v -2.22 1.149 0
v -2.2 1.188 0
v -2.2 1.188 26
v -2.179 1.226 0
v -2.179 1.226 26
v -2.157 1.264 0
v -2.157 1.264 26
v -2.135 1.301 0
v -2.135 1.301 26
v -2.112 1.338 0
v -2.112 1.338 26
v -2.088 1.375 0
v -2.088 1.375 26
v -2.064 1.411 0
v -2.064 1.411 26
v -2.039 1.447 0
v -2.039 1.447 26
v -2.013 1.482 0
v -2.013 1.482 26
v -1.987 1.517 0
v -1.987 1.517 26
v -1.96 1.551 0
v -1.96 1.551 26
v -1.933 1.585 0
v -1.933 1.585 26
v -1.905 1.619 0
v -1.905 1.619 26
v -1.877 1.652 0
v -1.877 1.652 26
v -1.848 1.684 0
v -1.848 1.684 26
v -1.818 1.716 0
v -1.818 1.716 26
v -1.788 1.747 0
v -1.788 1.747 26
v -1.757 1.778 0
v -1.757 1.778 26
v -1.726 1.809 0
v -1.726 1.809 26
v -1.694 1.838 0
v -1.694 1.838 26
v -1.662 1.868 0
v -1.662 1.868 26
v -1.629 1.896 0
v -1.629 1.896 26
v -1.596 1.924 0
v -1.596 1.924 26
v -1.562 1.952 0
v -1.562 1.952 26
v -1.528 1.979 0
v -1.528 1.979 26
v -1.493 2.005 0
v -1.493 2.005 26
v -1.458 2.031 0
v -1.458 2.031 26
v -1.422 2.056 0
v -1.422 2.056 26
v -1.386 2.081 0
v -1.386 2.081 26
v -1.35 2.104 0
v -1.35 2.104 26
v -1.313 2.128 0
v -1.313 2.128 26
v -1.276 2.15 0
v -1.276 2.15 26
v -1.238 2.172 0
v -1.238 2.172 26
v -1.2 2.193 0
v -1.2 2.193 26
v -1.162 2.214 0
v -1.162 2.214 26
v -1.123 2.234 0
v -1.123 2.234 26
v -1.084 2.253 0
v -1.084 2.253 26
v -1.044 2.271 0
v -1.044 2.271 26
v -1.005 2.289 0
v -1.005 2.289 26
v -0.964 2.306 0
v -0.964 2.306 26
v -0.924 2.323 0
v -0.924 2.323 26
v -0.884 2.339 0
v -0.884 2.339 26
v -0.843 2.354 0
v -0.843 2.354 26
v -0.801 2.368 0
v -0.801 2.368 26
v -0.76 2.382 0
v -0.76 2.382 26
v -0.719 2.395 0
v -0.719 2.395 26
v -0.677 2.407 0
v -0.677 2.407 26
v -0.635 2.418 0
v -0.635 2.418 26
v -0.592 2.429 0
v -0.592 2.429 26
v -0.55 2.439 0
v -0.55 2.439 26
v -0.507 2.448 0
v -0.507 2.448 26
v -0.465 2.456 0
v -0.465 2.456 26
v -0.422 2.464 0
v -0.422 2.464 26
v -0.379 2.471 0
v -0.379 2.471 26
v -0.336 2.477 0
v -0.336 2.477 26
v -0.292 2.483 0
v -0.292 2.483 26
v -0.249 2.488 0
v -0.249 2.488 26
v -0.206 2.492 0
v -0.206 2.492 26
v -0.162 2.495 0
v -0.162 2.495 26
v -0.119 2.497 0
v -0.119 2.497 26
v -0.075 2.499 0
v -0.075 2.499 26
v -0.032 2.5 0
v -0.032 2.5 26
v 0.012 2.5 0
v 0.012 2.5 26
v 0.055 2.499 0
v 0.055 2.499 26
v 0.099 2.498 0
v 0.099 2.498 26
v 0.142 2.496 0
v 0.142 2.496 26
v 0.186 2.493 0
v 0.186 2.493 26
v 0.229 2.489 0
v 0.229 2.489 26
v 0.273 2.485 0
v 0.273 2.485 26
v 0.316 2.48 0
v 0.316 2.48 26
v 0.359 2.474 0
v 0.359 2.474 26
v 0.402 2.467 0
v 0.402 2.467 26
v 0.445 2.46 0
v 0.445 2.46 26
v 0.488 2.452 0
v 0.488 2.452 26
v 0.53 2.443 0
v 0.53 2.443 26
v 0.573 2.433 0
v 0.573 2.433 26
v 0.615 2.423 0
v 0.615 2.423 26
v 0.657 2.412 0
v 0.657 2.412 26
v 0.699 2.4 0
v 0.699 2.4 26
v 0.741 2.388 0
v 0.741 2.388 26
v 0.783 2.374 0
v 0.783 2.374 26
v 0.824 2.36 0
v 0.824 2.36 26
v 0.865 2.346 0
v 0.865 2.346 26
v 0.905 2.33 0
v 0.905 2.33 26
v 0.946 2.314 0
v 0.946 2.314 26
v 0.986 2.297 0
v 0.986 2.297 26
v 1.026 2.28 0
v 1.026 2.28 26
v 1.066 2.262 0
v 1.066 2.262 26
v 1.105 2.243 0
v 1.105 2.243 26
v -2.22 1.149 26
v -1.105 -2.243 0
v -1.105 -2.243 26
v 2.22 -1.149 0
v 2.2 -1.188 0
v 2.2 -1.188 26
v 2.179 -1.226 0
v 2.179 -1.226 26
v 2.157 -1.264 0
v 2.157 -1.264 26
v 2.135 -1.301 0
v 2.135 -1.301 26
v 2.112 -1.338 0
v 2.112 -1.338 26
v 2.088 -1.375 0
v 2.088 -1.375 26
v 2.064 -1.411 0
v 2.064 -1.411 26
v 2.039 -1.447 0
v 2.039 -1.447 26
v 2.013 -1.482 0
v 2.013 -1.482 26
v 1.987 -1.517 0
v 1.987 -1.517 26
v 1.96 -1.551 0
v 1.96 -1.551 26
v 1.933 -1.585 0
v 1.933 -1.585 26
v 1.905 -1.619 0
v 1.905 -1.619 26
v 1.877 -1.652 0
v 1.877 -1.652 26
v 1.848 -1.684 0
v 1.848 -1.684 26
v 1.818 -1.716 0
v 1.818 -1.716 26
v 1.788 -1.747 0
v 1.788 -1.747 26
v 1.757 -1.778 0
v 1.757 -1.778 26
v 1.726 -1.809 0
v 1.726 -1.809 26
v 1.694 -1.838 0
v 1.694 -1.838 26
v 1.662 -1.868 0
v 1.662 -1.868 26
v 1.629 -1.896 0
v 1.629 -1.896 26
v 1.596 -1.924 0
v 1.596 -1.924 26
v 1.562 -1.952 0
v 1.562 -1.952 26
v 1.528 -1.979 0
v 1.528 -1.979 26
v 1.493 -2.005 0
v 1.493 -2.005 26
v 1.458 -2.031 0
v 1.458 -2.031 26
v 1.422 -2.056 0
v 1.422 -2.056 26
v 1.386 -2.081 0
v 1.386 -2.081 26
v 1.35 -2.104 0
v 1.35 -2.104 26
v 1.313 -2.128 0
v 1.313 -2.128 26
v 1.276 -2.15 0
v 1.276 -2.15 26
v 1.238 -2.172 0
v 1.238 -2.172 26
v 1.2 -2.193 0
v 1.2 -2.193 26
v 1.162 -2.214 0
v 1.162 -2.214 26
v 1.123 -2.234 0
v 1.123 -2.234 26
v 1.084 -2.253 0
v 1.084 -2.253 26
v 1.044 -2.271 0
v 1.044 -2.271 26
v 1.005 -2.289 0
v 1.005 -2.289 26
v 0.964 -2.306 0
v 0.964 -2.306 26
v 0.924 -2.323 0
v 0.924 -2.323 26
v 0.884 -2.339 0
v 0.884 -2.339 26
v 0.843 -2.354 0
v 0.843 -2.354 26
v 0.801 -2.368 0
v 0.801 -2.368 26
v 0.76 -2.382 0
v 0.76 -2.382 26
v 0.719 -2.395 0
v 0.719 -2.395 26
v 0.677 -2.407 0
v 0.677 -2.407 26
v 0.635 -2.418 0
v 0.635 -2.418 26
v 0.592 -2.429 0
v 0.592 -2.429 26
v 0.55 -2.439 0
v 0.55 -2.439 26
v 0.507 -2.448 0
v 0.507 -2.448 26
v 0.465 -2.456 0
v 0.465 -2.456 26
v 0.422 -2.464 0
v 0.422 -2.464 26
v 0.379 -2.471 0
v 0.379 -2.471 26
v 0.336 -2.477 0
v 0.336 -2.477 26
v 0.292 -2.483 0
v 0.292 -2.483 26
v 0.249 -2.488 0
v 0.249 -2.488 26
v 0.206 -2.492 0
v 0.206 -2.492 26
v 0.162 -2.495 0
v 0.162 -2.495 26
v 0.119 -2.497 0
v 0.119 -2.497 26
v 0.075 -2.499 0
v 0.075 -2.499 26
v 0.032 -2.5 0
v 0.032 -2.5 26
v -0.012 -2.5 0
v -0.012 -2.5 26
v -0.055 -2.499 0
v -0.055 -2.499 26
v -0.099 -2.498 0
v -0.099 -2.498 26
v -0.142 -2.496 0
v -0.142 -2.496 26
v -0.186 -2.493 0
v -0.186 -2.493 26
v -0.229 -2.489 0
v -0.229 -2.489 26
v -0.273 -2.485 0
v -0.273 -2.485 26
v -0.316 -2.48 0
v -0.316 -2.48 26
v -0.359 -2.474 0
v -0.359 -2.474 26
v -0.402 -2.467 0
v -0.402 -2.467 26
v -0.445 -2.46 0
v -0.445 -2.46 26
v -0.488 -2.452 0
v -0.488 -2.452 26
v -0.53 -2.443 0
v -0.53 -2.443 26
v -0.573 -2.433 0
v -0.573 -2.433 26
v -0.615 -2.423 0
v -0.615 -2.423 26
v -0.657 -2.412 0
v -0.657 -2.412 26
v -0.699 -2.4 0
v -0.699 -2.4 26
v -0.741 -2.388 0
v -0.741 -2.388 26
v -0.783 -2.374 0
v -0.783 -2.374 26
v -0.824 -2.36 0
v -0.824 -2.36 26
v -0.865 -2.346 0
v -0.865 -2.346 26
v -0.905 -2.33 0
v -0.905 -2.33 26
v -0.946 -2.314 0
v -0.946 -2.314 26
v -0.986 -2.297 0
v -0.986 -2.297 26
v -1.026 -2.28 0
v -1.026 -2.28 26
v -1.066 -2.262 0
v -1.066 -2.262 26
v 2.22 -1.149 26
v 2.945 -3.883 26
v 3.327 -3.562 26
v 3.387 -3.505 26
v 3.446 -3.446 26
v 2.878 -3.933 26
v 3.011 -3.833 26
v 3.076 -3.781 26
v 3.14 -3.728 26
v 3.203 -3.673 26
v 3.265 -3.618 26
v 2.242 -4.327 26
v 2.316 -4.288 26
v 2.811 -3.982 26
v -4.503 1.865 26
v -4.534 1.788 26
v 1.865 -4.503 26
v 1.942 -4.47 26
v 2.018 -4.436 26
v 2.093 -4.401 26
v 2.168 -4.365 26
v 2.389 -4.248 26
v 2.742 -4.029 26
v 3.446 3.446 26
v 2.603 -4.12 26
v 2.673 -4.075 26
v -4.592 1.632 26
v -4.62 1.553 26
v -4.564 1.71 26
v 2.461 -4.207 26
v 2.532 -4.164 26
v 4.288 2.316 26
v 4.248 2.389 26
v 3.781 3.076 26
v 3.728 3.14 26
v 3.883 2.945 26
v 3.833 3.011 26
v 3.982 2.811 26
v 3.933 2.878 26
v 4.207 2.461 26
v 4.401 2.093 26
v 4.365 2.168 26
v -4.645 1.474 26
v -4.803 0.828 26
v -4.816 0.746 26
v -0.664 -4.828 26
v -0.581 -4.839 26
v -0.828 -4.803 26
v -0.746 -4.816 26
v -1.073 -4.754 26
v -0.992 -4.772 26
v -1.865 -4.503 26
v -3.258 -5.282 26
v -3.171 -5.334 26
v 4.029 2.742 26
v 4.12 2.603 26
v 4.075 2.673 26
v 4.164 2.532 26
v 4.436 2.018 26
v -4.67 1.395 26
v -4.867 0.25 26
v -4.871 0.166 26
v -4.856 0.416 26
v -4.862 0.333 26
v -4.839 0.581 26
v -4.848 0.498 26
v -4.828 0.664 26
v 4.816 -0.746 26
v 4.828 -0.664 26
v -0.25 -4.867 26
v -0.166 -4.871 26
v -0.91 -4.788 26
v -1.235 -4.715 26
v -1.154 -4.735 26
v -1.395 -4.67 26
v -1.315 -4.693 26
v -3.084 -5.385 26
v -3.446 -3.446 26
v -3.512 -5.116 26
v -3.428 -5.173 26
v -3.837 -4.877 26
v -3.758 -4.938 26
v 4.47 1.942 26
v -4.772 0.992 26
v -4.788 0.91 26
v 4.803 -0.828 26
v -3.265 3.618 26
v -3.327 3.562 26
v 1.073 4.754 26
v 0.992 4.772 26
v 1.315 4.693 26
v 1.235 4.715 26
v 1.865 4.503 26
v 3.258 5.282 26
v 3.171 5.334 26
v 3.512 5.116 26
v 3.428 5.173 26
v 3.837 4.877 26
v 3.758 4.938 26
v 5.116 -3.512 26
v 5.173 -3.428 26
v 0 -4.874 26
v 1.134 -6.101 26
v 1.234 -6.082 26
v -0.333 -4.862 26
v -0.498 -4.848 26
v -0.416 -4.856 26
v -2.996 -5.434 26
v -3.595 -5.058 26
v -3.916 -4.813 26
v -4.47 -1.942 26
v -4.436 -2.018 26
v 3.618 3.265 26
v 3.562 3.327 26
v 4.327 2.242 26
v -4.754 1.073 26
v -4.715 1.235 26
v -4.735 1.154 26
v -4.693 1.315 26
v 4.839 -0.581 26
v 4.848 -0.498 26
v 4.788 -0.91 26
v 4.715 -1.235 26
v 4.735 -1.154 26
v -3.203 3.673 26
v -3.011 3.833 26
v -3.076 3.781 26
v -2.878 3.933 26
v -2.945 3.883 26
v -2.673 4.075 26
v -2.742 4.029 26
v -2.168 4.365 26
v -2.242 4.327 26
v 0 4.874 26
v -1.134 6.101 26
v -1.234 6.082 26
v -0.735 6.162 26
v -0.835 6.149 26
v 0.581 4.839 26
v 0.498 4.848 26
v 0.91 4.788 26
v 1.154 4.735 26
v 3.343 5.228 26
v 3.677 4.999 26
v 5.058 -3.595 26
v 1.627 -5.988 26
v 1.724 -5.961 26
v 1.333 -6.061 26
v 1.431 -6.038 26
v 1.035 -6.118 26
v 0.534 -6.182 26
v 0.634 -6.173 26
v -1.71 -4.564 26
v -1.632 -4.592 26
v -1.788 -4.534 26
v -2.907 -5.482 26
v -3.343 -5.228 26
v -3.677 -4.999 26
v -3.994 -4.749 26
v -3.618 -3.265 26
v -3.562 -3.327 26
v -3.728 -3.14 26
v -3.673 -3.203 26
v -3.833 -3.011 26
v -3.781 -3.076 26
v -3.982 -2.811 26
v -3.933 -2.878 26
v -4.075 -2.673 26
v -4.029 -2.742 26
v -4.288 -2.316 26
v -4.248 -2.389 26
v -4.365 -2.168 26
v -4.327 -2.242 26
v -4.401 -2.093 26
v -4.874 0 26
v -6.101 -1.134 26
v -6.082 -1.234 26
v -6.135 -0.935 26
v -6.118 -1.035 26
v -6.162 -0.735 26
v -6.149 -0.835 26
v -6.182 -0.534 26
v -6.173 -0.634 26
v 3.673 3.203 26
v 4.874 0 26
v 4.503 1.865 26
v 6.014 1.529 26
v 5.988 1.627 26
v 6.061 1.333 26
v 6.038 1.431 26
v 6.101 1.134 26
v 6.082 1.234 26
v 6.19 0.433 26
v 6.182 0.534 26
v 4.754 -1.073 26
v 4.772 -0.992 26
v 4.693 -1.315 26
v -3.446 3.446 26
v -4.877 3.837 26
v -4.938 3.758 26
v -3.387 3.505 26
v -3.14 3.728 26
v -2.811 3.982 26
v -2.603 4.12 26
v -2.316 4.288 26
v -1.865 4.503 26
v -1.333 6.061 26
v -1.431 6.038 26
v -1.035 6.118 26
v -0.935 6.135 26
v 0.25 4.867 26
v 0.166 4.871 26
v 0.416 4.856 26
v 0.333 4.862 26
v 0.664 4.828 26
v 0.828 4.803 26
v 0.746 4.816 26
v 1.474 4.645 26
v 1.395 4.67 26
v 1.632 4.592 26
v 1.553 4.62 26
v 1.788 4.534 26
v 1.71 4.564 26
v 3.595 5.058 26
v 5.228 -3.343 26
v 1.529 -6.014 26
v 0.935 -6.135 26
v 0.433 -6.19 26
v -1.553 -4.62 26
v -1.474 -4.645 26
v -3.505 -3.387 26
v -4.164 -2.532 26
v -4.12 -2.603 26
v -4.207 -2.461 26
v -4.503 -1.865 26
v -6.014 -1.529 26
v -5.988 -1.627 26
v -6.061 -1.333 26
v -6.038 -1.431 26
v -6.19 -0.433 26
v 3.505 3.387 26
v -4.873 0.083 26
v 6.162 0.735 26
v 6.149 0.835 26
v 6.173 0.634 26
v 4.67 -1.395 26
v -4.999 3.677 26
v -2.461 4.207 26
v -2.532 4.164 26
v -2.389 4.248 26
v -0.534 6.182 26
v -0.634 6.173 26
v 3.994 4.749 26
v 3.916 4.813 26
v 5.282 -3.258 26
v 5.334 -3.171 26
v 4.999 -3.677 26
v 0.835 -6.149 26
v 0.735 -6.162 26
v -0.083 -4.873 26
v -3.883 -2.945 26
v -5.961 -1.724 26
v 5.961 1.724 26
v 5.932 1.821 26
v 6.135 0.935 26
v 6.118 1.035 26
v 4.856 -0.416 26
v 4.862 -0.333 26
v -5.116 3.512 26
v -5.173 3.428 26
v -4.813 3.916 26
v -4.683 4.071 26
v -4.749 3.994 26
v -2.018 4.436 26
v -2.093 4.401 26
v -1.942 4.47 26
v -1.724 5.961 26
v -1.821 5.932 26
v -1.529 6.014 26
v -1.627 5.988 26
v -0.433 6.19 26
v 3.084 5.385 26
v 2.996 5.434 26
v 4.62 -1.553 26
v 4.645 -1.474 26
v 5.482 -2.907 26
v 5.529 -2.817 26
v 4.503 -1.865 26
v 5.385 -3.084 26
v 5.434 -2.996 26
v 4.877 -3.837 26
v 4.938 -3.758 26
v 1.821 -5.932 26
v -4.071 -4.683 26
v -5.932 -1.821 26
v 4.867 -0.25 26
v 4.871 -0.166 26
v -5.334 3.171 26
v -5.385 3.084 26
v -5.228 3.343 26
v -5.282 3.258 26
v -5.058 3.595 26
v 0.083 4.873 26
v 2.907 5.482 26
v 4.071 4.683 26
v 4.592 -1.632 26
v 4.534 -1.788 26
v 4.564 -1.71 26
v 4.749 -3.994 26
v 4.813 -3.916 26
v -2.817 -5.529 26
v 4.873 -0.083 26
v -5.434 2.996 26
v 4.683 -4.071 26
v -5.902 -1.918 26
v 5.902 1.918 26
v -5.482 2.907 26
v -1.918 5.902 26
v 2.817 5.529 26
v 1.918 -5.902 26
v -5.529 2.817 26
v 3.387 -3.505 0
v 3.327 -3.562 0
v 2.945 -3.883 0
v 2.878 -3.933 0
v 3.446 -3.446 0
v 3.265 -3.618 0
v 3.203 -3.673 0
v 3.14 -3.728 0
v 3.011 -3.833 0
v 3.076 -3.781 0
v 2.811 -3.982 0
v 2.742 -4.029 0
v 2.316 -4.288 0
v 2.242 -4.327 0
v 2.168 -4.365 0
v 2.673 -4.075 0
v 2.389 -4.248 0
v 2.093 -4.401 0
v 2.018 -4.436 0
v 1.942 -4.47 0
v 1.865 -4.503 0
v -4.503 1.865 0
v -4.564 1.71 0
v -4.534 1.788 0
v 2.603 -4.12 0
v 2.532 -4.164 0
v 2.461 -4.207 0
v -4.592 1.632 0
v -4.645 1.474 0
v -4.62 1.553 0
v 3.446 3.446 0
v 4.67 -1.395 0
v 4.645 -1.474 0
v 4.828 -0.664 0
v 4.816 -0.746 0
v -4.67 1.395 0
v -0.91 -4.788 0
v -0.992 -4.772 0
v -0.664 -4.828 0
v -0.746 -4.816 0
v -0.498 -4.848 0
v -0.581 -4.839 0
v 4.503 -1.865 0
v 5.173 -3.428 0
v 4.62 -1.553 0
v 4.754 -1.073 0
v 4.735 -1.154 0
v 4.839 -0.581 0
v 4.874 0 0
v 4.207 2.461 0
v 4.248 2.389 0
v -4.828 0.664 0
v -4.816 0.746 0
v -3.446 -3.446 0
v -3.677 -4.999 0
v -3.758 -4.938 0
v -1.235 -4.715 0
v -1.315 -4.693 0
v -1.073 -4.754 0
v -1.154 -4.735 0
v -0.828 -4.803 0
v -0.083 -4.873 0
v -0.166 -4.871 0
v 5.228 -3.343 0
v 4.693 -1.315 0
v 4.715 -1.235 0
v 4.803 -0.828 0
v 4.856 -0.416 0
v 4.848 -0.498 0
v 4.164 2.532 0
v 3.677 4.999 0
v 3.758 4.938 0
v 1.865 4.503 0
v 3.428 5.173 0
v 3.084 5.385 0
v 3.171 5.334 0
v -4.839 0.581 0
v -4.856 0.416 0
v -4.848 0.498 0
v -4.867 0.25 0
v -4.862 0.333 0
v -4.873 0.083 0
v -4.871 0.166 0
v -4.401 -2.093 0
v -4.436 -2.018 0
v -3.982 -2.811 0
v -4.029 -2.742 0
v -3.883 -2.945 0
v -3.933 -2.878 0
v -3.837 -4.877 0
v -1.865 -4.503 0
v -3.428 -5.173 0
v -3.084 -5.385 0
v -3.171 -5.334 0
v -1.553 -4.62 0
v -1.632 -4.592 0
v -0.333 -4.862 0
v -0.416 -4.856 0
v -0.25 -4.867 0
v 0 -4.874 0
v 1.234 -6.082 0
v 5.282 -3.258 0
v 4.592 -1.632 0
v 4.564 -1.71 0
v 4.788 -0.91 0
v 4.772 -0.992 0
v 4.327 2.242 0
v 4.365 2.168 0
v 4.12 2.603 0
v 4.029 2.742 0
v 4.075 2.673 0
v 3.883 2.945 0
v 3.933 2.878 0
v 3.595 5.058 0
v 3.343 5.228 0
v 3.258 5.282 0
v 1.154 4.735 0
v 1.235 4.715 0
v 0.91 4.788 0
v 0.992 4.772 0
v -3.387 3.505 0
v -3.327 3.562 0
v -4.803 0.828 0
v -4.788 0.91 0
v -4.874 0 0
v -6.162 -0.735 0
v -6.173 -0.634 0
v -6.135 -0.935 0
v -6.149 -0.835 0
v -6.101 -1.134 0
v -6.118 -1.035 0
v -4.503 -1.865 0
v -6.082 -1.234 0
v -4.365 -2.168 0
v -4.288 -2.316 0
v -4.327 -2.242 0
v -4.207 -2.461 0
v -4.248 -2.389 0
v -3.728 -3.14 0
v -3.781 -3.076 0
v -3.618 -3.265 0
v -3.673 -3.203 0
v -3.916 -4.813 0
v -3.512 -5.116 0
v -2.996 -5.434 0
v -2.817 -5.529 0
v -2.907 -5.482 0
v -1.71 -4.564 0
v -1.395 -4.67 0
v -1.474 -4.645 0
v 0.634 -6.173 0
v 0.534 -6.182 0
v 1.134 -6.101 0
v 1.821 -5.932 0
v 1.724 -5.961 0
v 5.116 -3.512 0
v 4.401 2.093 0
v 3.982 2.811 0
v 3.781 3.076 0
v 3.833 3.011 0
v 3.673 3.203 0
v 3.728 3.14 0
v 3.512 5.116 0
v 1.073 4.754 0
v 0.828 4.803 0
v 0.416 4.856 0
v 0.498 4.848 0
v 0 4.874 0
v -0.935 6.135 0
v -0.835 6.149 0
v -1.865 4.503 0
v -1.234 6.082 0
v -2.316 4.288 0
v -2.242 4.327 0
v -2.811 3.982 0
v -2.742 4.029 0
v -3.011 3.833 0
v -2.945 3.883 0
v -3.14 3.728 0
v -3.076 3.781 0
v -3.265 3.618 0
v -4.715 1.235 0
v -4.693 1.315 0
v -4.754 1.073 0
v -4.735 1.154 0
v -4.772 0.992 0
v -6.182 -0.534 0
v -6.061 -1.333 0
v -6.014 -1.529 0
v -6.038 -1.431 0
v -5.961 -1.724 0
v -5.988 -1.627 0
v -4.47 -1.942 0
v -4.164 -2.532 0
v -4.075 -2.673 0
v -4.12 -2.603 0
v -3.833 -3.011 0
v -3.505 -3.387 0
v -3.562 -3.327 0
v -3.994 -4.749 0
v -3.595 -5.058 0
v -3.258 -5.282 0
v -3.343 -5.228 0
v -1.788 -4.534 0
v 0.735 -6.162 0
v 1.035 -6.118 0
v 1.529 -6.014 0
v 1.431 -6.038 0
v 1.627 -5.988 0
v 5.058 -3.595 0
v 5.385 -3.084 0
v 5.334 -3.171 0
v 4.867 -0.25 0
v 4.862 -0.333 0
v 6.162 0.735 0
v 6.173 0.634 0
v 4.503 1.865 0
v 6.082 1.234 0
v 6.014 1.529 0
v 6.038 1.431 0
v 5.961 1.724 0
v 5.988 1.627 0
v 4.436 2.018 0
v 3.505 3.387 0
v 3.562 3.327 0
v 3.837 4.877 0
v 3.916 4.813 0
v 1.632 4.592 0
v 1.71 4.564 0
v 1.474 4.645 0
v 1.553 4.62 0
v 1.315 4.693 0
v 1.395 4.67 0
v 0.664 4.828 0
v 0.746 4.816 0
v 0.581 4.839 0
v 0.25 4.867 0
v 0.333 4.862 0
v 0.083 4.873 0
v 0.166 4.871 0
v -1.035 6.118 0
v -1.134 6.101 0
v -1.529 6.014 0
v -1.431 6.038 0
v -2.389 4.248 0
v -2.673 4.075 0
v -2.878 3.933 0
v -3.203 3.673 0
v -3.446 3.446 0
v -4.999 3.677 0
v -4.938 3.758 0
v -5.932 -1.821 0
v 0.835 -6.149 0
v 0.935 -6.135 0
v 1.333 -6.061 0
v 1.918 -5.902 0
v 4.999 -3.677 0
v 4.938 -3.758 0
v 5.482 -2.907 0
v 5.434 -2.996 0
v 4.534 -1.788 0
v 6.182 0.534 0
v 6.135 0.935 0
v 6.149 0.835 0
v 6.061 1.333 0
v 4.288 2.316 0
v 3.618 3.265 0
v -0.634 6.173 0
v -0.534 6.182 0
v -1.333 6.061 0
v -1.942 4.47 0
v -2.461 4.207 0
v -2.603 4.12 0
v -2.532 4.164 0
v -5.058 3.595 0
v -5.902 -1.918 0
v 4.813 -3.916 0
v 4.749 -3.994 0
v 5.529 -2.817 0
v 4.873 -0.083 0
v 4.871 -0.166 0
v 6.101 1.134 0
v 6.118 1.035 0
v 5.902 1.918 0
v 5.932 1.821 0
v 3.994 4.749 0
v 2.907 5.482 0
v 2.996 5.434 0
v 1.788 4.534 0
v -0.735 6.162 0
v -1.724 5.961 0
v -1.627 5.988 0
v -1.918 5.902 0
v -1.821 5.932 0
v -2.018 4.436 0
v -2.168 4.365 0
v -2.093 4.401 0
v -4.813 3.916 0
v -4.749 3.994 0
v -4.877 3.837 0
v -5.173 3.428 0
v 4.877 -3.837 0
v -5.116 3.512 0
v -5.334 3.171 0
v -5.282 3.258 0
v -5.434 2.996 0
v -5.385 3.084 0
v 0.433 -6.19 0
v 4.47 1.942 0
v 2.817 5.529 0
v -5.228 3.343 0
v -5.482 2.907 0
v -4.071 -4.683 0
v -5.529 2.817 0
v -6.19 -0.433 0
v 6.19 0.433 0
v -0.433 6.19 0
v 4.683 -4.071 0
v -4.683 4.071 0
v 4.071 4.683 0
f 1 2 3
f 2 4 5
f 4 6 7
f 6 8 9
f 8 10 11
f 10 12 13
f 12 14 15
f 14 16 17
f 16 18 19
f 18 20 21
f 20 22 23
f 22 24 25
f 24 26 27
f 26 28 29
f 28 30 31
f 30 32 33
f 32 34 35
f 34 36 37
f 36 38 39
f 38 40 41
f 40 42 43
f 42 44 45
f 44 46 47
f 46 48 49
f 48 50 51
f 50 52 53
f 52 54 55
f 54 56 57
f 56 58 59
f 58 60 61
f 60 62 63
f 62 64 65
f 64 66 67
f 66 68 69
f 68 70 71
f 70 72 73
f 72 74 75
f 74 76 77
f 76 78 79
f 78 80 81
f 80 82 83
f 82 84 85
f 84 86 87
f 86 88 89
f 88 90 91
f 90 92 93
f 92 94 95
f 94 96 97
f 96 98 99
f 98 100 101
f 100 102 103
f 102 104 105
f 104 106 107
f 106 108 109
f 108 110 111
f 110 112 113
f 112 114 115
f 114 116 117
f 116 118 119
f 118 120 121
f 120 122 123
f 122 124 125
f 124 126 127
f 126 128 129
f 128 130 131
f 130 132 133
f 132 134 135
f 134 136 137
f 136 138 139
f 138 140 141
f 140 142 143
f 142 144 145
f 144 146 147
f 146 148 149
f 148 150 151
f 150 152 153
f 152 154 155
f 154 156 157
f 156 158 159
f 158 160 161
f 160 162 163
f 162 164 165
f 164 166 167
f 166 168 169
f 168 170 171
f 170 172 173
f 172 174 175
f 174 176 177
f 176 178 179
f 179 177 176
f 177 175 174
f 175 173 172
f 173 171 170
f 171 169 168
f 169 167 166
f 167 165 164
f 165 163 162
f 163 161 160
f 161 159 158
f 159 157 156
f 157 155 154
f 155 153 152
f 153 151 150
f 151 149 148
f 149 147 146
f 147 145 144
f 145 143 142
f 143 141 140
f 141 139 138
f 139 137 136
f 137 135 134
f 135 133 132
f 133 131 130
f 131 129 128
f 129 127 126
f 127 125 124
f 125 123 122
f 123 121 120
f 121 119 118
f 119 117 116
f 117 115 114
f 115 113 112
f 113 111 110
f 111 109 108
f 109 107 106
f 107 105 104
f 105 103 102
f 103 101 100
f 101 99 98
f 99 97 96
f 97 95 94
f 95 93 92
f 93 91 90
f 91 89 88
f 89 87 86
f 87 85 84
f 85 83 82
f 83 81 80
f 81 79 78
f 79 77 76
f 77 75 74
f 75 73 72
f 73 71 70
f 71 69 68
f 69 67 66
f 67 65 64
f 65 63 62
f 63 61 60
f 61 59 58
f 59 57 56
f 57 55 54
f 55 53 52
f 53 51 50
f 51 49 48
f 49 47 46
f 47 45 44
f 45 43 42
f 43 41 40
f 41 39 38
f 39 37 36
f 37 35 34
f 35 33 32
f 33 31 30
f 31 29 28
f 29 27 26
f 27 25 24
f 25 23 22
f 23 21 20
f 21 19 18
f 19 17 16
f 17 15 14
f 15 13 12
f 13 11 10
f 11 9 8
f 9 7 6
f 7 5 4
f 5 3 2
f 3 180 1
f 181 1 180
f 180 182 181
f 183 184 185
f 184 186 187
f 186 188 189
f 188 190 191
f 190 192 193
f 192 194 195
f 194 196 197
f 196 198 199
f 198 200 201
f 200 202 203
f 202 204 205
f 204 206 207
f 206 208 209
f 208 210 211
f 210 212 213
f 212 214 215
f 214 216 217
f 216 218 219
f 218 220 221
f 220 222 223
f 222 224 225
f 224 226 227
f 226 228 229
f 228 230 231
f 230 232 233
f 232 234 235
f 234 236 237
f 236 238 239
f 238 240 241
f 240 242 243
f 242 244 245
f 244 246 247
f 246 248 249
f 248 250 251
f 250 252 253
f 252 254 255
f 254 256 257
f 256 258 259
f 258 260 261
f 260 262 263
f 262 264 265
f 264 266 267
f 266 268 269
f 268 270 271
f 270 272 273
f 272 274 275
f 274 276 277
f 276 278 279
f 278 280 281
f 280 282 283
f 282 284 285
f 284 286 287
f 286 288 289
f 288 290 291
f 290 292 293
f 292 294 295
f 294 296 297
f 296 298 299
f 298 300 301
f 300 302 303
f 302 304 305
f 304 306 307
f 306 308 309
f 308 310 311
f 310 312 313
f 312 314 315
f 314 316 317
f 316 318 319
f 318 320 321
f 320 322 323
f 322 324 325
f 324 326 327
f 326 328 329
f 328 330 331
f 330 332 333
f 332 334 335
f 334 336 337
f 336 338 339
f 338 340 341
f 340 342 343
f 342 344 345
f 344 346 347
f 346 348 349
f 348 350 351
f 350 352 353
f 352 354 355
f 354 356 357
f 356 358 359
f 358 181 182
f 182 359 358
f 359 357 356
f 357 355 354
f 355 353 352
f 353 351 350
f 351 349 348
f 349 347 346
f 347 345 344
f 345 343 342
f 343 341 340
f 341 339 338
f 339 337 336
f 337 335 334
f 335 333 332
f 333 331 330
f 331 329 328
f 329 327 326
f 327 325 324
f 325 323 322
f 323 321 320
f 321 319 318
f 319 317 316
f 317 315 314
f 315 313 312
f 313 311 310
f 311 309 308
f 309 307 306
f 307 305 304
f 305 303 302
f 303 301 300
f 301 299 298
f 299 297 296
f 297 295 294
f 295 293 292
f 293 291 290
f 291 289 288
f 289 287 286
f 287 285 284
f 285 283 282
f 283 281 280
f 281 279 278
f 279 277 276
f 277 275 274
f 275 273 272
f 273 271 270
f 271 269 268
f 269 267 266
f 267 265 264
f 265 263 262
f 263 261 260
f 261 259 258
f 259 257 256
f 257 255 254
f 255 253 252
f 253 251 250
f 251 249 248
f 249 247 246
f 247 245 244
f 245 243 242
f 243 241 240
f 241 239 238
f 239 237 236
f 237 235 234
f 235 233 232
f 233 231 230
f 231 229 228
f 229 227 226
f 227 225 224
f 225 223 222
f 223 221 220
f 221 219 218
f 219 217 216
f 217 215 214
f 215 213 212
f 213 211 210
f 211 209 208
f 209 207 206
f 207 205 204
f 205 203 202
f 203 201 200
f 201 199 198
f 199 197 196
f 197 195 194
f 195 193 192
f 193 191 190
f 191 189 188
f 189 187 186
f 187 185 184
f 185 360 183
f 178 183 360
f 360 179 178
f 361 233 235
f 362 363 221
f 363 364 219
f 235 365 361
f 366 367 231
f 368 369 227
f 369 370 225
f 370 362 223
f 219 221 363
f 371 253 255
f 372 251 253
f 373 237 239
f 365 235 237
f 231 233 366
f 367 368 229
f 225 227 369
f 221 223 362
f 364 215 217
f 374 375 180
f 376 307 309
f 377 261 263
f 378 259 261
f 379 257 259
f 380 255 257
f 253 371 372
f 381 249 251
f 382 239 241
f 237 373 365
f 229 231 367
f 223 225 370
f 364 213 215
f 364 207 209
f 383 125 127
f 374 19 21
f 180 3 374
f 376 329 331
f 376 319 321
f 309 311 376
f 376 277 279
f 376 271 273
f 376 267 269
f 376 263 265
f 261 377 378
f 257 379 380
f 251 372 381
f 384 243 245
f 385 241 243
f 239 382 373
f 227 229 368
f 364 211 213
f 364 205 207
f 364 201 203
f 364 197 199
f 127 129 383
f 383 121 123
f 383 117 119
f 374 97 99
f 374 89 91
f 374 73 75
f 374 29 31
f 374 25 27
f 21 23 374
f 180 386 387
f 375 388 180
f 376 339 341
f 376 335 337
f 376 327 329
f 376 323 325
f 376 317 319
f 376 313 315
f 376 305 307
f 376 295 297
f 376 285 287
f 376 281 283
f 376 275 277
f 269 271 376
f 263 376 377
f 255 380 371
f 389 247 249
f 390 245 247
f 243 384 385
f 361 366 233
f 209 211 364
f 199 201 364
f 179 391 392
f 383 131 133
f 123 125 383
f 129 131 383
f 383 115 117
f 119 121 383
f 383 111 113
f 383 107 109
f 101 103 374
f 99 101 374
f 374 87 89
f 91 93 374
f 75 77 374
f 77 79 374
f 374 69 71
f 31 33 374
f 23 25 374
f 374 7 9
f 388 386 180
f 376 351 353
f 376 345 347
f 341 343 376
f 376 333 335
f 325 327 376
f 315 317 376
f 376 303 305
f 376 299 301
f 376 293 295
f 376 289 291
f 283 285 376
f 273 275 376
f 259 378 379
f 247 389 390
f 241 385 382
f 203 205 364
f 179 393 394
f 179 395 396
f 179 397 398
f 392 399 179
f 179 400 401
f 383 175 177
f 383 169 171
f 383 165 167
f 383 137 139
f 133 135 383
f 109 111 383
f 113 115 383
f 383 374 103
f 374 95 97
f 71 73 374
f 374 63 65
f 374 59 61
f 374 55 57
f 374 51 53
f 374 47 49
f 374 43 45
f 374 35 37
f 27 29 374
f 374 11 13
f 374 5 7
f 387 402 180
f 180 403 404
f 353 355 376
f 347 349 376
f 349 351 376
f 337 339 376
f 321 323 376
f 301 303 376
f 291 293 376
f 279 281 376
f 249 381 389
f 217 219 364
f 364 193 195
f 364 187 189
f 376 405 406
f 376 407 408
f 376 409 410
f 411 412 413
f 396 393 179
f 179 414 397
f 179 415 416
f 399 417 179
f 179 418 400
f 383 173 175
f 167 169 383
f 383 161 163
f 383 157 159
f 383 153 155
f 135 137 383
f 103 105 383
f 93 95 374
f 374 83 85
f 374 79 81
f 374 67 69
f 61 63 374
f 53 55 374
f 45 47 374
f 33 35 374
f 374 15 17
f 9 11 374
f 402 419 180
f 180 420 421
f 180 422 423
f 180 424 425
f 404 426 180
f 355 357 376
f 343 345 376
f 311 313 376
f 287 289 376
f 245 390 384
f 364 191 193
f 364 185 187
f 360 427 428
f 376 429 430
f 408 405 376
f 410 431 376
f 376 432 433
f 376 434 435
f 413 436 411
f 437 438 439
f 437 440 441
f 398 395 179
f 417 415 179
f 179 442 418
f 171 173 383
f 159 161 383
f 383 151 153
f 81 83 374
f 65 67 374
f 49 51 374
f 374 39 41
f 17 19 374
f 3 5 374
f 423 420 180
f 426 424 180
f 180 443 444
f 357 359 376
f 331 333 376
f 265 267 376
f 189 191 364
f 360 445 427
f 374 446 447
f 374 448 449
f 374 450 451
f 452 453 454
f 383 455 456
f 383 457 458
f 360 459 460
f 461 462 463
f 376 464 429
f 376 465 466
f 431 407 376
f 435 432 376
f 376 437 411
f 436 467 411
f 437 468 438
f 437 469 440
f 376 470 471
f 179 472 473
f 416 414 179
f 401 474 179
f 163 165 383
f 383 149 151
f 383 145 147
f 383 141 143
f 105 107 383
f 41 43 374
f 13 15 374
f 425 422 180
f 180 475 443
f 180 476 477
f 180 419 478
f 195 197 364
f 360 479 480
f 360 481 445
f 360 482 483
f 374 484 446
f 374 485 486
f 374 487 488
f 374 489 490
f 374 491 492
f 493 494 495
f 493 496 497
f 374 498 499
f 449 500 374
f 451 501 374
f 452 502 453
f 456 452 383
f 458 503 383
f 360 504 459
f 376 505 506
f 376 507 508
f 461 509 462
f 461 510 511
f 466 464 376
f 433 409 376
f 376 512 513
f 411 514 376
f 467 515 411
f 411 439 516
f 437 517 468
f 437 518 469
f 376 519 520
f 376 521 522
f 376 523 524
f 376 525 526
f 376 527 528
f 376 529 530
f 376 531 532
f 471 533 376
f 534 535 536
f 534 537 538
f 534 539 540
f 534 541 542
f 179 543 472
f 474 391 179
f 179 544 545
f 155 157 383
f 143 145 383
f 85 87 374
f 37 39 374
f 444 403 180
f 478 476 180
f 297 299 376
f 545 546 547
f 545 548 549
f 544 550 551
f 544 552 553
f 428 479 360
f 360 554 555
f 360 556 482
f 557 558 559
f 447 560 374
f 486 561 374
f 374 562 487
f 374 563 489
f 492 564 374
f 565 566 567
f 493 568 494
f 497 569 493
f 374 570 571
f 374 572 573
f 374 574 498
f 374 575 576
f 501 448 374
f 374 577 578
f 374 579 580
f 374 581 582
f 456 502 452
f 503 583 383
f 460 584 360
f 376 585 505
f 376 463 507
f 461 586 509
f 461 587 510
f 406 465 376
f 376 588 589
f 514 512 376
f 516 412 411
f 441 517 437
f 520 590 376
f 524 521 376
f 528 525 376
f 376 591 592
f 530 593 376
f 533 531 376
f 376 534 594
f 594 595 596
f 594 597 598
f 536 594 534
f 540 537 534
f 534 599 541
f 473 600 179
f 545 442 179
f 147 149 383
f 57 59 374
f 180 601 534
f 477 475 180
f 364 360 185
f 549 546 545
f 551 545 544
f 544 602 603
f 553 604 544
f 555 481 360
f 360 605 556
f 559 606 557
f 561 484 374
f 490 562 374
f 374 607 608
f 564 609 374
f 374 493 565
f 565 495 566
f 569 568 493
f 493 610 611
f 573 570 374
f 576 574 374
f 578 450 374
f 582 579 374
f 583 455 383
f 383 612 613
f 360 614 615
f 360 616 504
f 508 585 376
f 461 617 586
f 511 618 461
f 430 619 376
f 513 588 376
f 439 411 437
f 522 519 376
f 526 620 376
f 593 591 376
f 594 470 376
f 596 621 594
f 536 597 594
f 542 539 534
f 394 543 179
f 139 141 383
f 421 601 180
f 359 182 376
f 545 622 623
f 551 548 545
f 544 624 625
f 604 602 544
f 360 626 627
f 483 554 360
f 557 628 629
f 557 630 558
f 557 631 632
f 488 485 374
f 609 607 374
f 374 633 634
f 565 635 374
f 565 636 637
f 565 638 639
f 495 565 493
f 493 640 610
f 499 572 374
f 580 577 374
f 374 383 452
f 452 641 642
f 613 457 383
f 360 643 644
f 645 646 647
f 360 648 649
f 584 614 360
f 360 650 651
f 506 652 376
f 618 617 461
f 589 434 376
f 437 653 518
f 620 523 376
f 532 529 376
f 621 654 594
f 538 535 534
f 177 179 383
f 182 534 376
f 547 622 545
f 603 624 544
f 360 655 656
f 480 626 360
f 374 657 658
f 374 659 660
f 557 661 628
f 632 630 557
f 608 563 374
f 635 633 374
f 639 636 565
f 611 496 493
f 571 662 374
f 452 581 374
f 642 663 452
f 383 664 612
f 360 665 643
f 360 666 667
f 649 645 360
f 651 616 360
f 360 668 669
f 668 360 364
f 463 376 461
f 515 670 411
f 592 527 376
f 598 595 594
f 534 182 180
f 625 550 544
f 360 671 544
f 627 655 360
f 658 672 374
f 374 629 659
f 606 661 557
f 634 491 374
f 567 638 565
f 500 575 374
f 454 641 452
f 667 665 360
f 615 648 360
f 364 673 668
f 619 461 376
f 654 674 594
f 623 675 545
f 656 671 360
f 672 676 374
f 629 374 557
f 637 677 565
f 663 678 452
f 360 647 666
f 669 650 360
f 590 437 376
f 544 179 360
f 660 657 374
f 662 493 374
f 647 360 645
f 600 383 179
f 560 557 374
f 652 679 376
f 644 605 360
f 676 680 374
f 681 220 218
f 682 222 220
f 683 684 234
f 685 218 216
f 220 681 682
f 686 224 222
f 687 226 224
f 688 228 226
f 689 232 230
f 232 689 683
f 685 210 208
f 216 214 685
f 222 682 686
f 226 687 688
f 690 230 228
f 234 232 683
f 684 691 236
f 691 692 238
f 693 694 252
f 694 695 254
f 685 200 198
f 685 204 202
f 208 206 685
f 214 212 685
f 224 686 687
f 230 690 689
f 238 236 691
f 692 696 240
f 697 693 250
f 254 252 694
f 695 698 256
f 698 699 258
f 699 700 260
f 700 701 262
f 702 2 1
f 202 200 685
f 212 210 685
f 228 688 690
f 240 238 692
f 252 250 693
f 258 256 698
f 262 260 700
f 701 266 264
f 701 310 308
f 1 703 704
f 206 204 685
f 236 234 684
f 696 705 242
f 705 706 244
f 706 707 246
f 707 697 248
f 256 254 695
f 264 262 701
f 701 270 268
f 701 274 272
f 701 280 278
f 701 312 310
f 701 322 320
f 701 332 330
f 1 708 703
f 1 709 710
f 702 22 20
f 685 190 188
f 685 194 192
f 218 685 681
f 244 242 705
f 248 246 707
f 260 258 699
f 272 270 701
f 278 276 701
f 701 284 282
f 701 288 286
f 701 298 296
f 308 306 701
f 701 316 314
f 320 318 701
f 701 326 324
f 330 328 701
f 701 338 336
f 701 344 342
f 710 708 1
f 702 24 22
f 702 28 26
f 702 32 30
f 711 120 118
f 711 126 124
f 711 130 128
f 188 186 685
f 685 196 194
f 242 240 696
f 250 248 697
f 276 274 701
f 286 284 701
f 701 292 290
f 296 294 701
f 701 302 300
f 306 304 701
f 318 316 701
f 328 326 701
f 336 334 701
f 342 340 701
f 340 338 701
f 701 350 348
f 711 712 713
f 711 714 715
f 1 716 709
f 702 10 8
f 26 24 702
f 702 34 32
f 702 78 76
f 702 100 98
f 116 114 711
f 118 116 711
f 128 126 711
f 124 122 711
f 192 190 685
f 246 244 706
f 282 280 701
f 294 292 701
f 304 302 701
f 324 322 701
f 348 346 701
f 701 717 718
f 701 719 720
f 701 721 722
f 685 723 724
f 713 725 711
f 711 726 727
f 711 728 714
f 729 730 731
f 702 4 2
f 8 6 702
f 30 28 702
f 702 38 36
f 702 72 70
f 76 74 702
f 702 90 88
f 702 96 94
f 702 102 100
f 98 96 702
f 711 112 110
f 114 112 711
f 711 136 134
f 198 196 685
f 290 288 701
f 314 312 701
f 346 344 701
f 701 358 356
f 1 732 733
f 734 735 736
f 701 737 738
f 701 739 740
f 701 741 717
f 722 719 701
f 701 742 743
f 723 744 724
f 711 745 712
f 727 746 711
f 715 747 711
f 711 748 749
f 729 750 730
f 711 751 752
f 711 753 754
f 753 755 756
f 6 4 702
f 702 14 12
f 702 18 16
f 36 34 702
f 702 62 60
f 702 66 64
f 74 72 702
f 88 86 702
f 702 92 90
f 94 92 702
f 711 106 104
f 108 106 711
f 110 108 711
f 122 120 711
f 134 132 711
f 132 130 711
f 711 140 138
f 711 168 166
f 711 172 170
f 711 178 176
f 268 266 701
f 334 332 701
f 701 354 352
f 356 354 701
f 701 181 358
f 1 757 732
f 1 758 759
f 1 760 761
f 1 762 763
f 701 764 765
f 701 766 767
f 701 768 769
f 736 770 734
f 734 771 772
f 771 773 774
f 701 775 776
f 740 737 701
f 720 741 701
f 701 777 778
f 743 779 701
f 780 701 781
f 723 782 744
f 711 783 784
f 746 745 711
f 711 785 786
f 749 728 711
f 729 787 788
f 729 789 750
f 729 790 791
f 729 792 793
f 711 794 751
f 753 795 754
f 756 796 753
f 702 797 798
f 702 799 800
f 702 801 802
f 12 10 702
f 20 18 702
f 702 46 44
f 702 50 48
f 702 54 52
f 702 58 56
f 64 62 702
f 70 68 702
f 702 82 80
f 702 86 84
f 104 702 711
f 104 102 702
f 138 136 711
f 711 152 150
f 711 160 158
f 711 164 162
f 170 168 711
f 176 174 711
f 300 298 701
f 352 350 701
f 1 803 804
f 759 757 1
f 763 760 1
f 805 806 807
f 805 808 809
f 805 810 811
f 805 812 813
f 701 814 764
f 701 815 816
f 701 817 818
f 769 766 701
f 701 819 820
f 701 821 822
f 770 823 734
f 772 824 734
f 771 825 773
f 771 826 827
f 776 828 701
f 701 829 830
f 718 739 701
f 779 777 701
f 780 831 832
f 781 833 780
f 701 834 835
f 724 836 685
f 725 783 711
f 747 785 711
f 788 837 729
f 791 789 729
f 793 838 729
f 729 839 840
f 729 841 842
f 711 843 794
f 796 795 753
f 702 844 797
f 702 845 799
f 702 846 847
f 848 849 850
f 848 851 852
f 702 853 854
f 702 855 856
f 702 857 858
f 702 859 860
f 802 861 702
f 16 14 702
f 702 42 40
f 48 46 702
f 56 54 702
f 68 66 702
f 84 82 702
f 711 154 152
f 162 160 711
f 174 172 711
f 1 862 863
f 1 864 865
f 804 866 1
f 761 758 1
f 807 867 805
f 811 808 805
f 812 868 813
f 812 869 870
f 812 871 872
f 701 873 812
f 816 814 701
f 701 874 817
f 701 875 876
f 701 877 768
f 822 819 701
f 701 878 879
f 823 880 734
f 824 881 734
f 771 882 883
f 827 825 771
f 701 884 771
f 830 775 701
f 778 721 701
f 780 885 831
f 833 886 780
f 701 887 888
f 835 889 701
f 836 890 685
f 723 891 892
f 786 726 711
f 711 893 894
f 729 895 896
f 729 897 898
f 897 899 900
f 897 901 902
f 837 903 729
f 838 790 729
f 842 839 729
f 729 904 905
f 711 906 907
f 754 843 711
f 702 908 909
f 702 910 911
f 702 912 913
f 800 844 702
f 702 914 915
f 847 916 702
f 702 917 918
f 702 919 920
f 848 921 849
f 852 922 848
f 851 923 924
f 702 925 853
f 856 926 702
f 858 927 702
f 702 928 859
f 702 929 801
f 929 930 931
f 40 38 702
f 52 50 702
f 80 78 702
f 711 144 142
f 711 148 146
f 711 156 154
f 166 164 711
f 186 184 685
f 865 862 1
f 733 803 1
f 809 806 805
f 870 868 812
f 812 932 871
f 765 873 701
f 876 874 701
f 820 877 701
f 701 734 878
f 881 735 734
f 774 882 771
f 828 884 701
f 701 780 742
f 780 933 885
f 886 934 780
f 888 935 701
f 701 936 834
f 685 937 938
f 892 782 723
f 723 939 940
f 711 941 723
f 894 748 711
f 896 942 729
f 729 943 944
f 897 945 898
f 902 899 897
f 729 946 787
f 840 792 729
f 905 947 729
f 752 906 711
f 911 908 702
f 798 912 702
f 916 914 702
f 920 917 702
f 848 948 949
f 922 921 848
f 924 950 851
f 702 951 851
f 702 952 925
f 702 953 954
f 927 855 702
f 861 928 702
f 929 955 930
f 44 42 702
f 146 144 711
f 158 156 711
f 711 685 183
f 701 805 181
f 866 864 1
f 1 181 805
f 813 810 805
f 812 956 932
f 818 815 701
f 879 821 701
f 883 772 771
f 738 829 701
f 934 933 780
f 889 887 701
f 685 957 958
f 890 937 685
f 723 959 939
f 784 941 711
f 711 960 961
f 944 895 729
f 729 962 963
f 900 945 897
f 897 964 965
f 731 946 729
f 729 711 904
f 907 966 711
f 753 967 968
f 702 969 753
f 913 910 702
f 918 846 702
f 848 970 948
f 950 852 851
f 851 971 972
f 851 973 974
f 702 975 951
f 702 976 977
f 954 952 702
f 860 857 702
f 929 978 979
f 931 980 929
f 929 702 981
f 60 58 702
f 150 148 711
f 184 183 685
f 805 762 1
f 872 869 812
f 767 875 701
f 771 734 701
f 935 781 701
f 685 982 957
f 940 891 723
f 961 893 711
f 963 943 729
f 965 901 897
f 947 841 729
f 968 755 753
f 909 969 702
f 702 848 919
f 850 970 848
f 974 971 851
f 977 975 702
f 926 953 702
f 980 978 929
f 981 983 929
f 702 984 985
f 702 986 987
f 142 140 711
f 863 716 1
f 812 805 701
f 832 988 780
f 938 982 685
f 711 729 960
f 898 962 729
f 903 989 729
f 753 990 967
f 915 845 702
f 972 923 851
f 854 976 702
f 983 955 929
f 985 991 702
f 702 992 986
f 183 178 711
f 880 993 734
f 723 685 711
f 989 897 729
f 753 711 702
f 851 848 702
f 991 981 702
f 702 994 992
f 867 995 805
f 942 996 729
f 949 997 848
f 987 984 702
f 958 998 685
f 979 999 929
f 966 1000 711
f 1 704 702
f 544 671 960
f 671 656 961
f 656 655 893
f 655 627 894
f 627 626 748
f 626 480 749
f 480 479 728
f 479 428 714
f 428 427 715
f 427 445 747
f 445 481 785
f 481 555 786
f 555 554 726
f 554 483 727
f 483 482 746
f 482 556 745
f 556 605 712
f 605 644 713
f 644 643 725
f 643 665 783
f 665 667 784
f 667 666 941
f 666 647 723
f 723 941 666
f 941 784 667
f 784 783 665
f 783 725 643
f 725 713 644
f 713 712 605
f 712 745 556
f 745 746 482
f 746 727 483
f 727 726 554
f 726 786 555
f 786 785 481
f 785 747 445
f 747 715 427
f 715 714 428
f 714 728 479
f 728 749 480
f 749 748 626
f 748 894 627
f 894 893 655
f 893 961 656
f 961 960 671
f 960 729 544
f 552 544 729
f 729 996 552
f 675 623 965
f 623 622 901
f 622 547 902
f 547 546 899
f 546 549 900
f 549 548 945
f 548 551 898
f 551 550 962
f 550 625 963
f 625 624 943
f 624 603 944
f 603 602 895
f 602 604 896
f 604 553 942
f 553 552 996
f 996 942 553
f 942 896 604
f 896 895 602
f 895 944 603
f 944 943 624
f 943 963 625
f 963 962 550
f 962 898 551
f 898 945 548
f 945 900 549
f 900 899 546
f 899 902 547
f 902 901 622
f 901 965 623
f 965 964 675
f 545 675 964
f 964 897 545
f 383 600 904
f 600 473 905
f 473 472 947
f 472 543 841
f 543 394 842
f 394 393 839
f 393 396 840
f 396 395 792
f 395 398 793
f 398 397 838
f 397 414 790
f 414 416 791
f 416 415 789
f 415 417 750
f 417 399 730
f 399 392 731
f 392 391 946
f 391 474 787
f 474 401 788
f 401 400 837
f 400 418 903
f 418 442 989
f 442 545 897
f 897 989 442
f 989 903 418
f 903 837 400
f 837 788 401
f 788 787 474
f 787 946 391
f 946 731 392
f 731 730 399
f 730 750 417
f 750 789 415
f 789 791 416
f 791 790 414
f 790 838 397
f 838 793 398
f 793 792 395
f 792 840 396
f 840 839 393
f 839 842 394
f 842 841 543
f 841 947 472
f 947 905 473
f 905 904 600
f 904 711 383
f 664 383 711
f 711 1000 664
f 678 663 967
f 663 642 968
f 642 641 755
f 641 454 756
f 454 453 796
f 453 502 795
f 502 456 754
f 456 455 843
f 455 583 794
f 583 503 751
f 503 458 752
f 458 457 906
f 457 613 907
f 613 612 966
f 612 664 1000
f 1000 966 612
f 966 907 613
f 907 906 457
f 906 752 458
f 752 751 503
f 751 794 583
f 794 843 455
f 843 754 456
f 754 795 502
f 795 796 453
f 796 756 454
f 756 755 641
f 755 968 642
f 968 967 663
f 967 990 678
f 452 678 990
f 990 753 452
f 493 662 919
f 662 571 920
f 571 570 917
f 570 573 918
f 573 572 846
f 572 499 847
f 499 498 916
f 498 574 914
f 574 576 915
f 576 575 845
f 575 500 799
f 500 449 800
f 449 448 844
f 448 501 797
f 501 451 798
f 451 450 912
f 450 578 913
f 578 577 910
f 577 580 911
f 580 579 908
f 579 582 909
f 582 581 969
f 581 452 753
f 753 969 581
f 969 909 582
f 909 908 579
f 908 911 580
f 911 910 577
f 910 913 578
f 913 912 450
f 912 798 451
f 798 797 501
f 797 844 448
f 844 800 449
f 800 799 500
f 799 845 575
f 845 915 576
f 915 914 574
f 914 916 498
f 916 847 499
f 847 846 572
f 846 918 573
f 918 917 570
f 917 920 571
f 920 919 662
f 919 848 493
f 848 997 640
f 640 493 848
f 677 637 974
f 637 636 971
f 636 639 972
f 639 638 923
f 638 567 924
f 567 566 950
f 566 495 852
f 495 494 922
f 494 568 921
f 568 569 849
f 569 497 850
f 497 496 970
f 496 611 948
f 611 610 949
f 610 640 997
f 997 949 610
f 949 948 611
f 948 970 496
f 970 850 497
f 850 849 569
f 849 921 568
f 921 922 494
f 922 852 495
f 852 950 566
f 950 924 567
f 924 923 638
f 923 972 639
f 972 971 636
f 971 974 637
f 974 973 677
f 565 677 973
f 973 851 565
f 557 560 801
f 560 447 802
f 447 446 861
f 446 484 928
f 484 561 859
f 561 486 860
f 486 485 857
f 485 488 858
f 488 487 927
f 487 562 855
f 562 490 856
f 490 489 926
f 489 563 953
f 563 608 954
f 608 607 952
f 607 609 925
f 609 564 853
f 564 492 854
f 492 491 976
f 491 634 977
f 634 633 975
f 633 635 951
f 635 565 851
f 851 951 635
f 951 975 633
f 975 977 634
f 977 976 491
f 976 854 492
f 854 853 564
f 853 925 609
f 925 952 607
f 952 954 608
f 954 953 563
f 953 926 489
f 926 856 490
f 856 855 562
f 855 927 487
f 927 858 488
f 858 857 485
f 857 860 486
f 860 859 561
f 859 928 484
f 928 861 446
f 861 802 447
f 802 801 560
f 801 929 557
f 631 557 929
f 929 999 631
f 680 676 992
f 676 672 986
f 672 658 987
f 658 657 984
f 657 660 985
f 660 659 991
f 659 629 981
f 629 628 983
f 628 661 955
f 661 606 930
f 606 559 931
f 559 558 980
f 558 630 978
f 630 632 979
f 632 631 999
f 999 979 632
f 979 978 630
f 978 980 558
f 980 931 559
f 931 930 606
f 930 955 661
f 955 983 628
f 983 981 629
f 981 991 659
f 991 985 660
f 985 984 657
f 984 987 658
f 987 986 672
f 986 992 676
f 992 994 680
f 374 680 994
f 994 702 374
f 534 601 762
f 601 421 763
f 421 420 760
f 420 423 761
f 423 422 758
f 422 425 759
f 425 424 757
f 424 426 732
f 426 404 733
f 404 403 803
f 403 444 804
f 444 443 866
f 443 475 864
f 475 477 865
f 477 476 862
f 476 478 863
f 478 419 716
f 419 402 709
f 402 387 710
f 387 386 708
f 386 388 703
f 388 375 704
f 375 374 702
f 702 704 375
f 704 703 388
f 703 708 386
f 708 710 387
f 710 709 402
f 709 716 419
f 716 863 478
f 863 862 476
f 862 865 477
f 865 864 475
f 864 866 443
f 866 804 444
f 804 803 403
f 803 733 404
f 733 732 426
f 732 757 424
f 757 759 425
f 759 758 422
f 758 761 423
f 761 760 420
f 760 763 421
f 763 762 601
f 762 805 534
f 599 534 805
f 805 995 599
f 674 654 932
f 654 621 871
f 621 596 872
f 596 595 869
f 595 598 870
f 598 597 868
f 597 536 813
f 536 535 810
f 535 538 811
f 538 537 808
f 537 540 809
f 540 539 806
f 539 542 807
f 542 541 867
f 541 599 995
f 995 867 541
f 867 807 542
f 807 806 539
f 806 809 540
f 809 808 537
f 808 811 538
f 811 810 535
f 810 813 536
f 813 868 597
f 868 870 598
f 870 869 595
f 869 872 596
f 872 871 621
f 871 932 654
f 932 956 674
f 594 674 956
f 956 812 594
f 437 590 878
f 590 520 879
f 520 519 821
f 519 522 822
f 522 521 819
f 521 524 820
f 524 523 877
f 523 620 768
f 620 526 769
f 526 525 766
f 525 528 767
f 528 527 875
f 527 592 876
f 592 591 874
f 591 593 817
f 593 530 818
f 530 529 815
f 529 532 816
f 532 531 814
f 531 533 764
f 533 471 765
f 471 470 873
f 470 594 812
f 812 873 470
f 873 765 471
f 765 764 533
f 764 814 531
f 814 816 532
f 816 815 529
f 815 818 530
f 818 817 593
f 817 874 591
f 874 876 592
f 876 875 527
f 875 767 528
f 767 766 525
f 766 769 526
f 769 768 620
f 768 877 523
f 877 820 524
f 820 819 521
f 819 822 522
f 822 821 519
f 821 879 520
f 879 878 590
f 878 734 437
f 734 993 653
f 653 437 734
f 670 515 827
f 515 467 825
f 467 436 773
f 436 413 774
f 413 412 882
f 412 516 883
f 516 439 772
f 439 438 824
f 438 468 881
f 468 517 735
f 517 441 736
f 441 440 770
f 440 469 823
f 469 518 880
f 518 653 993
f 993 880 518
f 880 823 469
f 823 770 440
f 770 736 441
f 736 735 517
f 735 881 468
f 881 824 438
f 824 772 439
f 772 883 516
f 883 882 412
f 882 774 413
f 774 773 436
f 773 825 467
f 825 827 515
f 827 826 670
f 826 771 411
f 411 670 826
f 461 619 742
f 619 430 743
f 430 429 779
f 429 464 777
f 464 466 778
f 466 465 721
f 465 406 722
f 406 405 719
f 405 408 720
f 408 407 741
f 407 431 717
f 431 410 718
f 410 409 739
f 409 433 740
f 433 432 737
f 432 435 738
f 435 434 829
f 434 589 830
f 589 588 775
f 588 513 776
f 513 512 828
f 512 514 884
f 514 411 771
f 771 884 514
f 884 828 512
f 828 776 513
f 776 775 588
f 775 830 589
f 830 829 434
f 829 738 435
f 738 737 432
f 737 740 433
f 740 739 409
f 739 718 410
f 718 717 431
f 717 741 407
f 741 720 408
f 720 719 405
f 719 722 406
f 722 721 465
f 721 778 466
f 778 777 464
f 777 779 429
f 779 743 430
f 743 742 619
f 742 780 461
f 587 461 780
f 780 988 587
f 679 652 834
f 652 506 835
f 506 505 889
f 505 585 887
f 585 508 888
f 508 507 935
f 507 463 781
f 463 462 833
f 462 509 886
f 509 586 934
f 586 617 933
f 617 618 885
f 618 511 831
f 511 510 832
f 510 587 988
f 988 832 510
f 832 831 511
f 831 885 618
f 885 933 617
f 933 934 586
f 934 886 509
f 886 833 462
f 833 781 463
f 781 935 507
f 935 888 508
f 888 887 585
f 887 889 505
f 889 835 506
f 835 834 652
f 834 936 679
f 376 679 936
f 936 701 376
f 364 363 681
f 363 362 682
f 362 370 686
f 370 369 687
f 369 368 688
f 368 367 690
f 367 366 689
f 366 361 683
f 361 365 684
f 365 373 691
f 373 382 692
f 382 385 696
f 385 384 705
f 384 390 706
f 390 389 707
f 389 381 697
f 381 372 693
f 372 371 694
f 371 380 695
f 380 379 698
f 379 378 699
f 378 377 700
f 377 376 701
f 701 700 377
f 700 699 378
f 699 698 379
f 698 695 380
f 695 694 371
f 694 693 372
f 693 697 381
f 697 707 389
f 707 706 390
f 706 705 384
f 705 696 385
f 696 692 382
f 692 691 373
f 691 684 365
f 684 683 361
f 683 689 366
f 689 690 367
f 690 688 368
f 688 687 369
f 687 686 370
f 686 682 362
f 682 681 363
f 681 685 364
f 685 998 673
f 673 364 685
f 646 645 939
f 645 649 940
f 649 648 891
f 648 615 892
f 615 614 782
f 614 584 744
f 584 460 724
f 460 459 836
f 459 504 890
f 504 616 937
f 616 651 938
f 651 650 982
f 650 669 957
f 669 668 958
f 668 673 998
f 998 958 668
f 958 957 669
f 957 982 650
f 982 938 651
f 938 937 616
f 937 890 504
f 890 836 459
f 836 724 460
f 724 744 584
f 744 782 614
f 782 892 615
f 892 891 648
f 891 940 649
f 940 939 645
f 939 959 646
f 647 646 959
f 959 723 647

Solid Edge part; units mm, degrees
sketch "Sketch1" plane through (0, 0, 0) normal (0, 0, 1) x (1, 0, 0)
  line L0 (4.8737, 0) -> (6.1903, 0.4329)
  arc A0 (5.9017, 1.9176) -> (6.1903, 0.4329) centre (0, 0) cw
  line L1 (5.9017, 1.9176) -> (4.5027, 1.8651)
  arc A1 (3.4462, 3.4462) -> (4.5027, 1.8651) centre (0, 0) cw
  line L2 (3.4462, 3.4462) -> (4.0711, 4.6833)
  arc A2 (2.8172, 5.529) -> (4.0711, 4.6833) centre (0, 0) cw
  line L3 (2.8172, 5.529) -> (1.8651, 4.5027)
  arc A3 (0, 4.8737) -> (1.8651, 4.5027) centre (0, 0) cw
  line L4 (0, 4.8737) -> (-0.4329, 6.1903)
  arc A4 (-1.9176, 5.9017) -> (-0.4329, 6.1903) centre (0, 0) cw
  line L5 (-1.9176, 5.9017) -> (-1.8651, 4.5027)
  arc A5 (-3.4462, 3.4462) -> (-1.8651, 4.5027) centre (0, 0) cw
  line L6 (-3.4462, 3.4462) -> (-4.6833, 4.0711)
  arc A6 (-5.529, 2.8172) -> (-4.6833, 4.0711) centre (0, 0) cw
  line L7 (-5.529, 2.8172) -> (-4.5027, 1.8651)
  arc A7 (-4.8737, 0) -> (-4.5027, 1.8651) centre (0, 0) cw
  line L8 (-4.8737, 0) -> (-6.1903, -0.4329)
  arc A8 (-5.9017, -1.9176) -> (-6.1903, -0.4329) centre (0, 0) cw
  line L9 (-5.9017, -1.9176) -> (-4.5027, -1.8651)
  arc A9 (-3.4462, -3.4462) -> (-4.5027, -1.8651) centre (0, 0) cw
  line L10 (-3.4462, -3.4462) -> (-4.0711, -4.6833)
  arc A10 (-2.8172, -5.529) -> (-4.0711, -4.6833) centre (0, 0) cw
  line L11 (-2.8172, -5.529) -> (-1.8651, -4.5027)
  arc A11 (0, -4.8737) -> (-1.8651, -4.5027) centre (0, 0) cw
  line L12 (0, -4.8737) -> (0.4329, -6.1903)
  arc A12 (1.9176, -5.9017) -> (0.4329, -6.1903) centre (0, 0) cw
  line L13 (1.9176, -5.9017) -> (1.8651, -4.5027)
  arc A13 (3.4462, -3.4462) -> (1.8651, -4.5027) centre (0, 0) cw
  line L14 (3.4462, -3.4462) -> (4.6833, -4.0711)
  arc A14 (5.529, -2.8172) -> (4.6833, -4.0711) centre (0, 0) cw
  line L15 (5.529, -2.8172) -> (4.5027, -1.8651)
  arc A15 (4.8737, 0) -> (4.5027, -1.8651) centre (0, 0) cw
extrude "Protrusion1" add sketch "Sketch1" along normal blind 26
sketch "Sketch2" plane through (0, 0, 26) normal (0, 0, 1) x (1, 0, 0)
  circle A0 centre (0, 0) radius 2.5
extrude "Cutout1" cut sketch "Sketch2" against normal through all
sketch "Sketch3" plane through (0, 0, 26) normal (0, 0, 1) x (0.95, 0.3123, 0)
  line L0 (-1.75, -1.7854) -> (-1.75, 1.7854)
  arc A0 (-1.75, -1.7854) -> (-1.75, 1.7854) centre (0, 0) cw
  line L1 (1.75, -1.7854) -> (1.75, 1.7854)
  arc A1 (1.75, 1.7854) -> (1.75, -1.7854) centre (0, 0) cw
extrude "Protrusion2" add sketch "Sketch3" against normal up to vertex (26 mm away)
properties material "ABS Plastic, high impact"
